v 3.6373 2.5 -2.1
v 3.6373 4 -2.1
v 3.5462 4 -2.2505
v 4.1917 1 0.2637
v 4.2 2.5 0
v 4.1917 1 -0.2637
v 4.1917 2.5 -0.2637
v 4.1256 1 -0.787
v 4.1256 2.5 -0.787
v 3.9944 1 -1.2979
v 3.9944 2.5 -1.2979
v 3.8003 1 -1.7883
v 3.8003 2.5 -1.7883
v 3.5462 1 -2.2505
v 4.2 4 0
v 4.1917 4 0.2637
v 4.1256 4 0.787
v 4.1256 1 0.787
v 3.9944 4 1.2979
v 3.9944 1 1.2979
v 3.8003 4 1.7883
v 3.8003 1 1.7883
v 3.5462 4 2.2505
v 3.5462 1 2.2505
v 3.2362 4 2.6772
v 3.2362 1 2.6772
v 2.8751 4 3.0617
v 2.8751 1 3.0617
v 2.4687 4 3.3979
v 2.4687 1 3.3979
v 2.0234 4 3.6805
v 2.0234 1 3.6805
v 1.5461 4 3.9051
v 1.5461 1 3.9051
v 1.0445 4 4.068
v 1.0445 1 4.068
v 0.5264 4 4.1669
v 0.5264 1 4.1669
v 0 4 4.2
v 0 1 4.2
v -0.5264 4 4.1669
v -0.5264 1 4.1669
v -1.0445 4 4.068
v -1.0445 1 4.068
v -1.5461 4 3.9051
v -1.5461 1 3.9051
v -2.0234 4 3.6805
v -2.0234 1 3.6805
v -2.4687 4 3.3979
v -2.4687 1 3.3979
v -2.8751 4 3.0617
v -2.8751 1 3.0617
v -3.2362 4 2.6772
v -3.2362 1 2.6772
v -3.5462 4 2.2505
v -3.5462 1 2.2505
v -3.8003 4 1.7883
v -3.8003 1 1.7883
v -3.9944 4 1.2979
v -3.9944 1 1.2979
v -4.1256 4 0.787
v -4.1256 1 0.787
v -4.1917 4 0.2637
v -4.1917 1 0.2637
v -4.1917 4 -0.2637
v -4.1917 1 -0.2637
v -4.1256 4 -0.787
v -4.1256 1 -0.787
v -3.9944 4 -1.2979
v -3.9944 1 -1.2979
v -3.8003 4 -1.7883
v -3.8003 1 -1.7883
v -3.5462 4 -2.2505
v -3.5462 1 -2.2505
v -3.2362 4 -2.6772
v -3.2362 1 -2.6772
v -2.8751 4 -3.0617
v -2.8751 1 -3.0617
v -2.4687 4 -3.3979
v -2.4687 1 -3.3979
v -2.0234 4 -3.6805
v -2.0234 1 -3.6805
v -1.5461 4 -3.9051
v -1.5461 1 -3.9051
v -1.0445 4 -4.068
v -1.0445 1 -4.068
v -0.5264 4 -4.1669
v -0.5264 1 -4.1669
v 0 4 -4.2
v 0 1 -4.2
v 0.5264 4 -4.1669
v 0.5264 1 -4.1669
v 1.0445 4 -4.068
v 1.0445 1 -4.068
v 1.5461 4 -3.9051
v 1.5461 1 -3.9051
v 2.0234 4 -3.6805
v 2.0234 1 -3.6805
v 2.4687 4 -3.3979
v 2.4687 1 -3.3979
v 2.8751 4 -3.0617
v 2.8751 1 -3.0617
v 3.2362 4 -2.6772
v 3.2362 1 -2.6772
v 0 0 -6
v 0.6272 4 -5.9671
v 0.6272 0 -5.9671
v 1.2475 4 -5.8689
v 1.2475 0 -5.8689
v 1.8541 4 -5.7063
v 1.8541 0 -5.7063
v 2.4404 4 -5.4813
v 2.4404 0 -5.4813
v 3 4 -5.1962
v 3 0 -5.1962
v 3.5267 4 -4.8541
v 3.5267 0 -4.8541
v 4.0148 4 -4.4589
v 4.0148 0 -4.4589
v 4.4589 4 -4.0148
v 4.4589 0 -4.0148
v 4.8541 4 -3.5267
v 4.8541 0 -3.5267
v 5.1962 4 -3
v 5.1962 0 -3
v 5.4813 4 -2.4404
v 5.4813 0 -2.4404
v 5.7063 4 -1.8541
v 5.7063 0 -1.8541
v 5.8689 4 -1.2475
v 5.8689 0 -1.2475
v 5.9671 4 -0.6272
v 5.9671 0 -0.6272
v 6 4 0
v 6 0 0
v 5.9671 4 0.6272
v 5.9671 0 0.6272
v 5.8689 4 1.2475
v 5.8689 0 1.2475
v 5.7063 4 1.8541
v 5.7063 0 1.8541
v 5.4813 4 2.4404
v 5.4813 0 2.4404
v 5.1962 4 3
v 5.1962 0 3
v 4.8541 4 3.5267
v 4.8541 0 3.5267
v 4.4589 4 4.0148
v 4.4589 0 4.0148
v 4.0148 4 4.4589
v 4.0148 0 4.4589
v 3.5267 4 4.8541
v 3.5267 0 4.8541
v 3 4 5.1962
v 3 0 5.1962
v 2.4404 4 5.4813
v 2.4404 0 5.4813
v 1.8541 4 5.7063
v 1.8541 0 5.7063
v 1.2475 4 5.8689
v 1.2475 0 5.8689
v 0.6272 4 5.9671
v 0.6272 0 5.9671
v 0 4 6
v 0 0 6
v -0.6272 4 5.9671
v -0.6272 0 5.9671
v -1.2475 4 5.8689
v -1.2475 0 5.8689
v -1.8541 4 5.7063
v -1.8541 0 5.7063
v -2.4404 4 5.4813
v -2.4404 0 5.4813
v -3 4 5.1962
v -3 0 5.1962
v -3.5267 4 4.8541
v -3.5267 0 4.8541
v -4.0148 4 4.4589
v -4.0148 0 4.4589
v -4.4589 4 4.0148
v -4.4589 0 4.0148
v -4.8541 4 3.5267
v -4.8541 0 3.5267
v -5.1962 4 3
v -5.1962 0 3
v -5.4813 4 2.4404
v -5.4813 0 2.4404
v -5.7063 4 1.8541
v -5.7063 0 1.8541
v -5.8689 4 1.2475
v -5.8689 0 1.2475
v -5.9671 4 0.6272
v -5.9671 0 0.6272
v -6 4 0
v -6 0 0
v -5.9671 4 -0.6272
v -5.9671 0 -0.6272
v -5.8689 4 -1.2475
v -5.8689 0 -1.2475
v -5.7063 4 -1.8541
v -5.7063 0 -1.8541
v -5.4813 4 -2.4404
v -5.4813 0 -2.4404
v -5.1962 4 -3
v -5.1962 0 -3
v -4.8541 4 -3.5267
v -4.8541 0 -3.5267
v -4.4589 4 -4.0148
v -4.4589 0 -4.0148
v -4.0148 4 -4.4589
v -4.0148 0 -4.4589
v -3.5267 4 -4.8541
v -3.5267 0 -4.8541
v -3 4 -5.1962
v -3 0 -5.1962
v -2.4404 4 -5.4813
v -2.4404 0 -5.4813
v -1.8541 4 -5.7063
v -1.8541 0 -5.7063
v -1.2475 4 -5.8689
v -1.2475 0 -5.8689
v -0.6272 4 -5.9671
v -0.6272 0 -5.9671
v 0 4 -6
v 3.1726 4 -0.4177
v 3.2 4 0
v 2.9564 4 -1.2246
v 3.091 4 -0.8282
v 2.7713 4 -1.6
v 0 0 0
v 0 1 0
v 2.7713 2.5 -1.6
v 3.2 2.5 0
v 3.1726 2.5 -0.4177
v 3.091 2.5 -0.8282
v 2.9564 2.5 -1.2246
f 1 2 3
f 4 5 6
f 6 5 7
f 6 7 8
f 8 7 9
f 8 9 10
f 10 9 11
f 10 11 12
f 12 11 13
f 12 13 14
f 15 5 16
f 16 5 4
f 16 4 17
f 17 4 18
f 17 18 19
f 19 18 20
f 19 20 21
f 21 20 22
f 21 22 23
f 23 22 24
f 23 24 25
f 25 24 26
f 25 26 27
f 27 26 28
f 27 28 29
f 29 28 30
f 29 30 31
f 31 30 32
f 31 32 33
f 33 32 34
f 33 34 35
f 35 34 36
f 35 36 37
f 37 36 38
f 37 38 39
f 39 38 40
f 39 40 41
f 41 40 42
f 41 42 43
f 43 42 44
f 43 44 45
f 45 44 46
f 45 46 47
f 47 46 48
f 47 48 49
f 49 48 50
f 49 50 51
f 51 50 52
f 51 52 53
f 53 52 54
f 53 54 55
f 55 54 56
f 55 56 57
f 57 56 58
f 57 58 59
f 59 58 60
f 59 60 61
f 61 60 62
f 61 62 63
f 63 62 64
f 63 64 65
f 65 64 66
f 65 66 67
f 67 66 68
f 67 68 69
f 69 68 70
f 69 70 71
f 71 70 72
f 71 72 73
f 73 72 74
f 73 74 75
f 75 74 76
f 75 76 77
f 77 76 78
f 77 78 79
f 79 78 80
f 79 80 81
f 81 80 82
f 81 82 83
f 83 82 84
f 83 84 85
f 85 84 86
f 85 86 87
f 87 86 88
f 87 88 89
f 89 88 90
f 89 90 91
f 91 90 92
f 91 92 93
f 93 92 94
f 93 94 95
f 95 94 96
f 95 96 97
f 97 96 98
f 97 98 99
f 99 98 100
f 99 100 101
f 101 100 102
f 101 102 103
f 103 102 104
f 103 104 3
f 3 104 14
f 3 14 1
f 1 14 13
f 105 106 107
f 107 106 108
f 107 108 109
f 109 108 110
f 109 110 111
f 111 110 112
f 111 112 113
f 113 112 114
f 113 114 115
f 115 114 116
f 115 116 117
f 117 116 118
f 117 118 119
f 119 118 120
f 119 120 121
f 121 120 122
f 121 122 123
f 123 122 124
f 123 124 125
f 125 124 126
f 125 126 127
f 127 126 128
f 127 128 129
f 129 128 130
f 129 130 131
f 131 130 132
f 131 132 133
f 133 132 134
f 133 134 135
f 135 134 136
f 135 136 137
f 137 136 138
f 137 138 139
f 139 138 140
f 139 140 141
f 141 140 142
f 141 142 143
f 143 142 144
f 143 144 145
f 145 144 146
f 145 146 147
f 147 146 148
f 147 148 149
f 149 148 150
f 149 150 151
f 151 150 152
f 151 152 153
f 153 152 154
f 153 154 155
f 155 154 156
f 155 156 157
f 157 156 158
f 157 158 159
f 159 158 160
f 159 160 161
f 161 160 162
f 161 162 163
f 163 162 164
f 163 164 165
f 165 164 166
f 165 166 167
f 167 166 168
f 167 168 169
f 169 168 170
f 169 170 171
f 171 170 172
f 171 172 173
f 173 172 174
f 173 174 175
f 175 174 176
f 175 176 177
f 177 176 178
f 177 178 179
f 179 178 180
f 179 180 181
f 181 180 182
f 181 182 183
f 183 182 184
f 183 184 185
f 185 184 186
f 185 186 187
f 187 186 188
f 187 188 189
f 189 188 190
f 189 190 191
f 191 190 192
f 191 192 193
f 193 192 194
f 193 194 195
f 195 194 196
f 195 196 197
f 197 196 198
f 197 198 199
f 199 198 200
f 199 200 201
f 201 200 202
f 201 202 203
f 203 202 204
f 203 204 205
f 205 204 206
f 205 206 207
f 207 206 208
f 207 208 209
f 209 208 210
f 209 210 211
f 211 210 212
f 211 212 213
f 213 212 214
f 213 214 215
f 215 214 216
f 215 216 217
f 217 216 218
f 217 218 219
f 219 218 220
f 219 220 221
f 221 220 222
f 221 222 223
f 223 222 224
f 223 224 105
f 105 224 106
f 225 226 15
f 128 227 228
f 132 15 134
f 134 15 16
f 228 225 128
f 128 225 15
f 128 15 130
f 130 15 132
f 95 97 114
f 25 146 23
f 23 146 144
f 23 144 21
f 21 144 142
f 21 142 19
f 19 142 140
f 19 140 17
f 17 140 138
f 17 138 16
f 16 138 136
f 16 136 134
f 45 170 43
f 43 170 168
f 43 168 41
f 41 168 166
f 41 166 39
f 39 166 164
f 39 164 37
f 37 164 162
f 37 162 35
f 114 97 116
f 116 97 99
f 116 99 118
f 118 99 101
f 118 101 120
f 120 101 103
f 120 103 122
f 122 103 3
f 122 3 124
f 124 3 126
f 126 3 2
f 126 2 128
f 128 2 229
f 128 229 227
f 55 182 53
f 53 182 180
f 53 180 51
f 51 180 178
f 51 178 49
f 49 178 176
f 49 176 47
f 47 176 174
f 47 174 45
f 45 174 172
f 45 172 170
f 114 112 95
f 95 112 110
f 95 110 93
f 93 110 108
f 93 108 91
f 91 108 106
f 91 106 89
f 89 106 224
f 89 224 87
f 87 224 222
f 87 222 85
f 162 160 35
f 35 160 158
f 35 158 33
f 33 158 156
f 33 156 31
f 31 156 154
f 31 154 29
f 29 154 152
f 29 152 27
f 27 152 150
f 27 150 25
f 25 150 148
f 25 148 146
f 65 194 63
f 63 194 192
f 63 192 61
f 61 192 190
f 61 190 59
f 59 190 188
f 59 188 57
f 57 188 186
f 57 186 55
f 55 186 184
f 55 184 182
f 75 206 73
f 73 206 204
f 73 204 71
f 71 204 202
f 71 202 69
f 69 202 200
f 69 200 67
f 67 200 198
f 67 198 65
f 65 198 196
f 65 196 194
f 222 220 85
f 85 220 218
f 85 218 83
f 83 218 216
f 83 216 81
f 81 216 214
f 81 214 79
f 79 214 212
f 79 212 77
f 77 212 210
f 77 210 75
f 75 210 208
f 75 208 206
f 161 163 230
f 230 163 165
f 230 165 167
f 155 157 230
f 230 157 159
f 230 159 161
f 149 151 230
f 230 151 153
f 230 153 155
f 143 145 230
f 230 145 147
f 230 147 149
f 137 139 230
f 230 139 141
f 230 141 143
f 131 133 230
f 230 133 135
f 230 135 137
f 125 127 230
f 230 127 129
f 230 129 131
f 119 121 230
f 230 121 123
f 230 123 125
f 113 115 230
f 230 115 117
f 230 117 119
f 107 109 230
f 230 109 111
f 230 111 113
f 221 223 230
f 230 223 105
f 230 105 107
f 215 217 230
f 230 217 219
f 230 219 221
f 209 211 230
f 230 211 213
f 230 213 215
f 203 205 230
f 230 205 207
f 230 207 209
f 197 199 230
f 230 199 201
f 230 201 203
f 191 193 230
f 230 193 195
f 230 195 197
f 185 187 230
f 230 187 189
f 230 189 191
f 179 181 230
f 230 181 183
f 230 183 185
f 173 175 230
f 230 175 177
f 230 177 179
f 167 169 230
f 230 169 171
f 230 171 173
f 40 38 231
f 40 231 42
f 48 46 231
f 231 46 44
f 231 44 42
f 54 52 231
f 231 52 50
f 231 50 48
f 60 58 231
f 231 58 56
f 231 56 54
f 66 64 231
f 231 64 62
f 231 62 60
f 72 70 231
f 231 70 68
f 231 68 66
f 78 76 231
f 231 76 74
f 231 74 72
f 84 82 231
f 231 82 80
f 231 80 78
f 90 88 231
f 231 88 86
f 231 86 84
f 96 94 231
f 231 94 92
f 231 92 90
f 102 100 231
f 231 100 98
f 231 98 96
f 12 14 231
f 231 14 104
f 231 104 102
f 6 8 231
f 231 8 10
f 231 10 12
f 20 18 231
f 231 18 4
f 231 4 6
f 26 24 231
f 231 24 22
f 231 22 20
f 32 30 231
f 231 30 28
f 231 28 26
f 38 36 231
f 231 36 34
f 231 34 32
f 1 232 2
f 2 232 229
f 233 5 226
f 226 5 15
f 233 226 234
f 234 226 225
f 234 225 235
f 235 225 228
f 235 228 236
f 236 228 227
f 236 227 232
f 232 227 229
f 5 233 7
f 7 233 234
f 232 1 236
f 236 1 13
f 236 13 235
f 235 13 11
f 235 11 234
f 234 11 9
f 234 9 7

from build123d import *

# Parameters (mm, degrees)
SKETCH1_R           = 6
SKETCH1_R_2         = 4.2
BOSS_EXTRUDE1_DEPTH = 4
SKETCH1_3_R         = 6
SKETCH1_3_R_2       = 4.2
BOSS_EXTRUDE2_DEPTH = 1
BOSS_EXTRUDE3_START = 2.5
BOSS_EXTRUDE3_DEPTH = 1.5


with BuildPart() as part:
    # Sketch1 → Boss-Extrude1 (new body)
    with BuildSketch(Plane(origin=(0, 0, 0), x_dir=(1, 0, 0), z_dir=(0, 1, 0))):
        with Locations(Location((0, 0, 0), (0, 0, 270))):
            Circle(SKETCH1_R)
        with Locations(Location((0, 0, 0), (0, 0, 270))):
            Circle(SKETCH1_R_2, mode=Mode.SUBTRACT)
    extrude(amount=BOSS_EXTRUDE1_DEPTH)

    # Sketch1<3> → Boss-Extrude2 (add)
    # profile 1 of 5: a face of its own
    with BuildSketch(Plane(origin=(0, 0, 0), x_dir=(1, 0, 0), z_dir=(0, 1, 0))):
        with Locations(Location((0, 0, 0), (0, 0, 270))):
            Circle(SKETCH1_3_R)
        with Locations(Location((0, 0, 0), (0, 0, 270))):
            Circle(SKETCH1_3_R_2, mode=Mode.SUBTRACT)
    # profile 2 of 5: a face of its own
    with BuildSketch(Plane(origin=(0, 0, 0), x_dir=(1, 0, 0), z_dir=(0, 1, 0))):
        with BuildLine():
            Line((2.771281292, 1.6), (3.637306696, 2.1))
            ThreePointArc((3.637306696, 2.1), (-4.05688847, -1.087039989), (4.2, 0))
            Line((4.2, 0), (3.2, 0))
            ThreePointArc((3.2, 0), (3.090962644, 0.828220944), (2.771281292, 1.6))
        make_face()
    # profile 3 of 5: a face of its own
    with BuildSketch(Plane(origin=(0, 0, 0), x_dir=(1, 0, 0), z_dir=(0, 1, 0))):
        with BuildLine():
            ThreePointArc((4.2, 0), (4.05688847, 1.087039989), (3.637306696, 2.1))
            Line((3.637306696, 2.1), (2.771281292, 1.6))
            ThreePointArc((2.771281292, 1.6), (3.090962644, 0.828220944), (3.2, 0))
            Line((3.2, 0), (4.2, 0))
        make_face()
    # profile 4 of 5: a face of its own
    with BuildSketch(Plane(origin=(0, 0, 0), x_dir=(1, 0, 0), z_dir=(0, 1, 0))):
        with BuildLine():
            ThreePointArc((4.2, 0), (4.05688847, 1.087039989), (3.637306696, 2.1))
            Line((3.637306696, 2.1), (2.771281292, 1.6))
            ThreePointArc((2.771281292, 1.6), (3.090962644, 0.828220944), (3.2, 0))
            Line((3.2, 0), (4.2, 0))
        make_face()
    # profile 5 of 5: a face of its own
    with BuildSketch(Plane(origin=(0, 0, 0), x_dir=(1, 0, 0), z_dir=(0, 1, 0))):
        with BuildLine():
            Line((2.771281292, 1.6), (3.637306696, 2.1))
            ThreePointArc((3.637306696, 2.1), (-4.05688847, -1.087039989), (4.2, 0))
            Line((4.2, 0), (3.2, 0))
            ThreePointArc((3.2, 0), (3.090962644, 0.828220944), (2.771281292, 1.6))
        make_face()
    extrude(amount=BOSS_EXTRUDE2_DEPTH)

    # Sketch1<4> → Boss-Extrude3 (add)
    with BuildSketch(Plane(origin=(0, 0, 0), x_dir=(1, 0, 0), z_dir=(0, 1, 0)).offset(BOSS_EXTRUDE3_START)):
        with BuildLine():
            ThreePointArc((4.2, 0), (4.05688847, 1.087039989), (3.637306696, 2.1))
            Line((3.637306696, 2.1), (2.771281292, 1.6))
            ThreePointArc((2.771281292, 1.6), (3.090962644, 0.828220944), (3.2, 0))
            Line((3.2, 0), (4.2, 0))
        make_face()
    extrude(amount=BOSS_EXTRUDE3_DEPTH)


solid = part.part
